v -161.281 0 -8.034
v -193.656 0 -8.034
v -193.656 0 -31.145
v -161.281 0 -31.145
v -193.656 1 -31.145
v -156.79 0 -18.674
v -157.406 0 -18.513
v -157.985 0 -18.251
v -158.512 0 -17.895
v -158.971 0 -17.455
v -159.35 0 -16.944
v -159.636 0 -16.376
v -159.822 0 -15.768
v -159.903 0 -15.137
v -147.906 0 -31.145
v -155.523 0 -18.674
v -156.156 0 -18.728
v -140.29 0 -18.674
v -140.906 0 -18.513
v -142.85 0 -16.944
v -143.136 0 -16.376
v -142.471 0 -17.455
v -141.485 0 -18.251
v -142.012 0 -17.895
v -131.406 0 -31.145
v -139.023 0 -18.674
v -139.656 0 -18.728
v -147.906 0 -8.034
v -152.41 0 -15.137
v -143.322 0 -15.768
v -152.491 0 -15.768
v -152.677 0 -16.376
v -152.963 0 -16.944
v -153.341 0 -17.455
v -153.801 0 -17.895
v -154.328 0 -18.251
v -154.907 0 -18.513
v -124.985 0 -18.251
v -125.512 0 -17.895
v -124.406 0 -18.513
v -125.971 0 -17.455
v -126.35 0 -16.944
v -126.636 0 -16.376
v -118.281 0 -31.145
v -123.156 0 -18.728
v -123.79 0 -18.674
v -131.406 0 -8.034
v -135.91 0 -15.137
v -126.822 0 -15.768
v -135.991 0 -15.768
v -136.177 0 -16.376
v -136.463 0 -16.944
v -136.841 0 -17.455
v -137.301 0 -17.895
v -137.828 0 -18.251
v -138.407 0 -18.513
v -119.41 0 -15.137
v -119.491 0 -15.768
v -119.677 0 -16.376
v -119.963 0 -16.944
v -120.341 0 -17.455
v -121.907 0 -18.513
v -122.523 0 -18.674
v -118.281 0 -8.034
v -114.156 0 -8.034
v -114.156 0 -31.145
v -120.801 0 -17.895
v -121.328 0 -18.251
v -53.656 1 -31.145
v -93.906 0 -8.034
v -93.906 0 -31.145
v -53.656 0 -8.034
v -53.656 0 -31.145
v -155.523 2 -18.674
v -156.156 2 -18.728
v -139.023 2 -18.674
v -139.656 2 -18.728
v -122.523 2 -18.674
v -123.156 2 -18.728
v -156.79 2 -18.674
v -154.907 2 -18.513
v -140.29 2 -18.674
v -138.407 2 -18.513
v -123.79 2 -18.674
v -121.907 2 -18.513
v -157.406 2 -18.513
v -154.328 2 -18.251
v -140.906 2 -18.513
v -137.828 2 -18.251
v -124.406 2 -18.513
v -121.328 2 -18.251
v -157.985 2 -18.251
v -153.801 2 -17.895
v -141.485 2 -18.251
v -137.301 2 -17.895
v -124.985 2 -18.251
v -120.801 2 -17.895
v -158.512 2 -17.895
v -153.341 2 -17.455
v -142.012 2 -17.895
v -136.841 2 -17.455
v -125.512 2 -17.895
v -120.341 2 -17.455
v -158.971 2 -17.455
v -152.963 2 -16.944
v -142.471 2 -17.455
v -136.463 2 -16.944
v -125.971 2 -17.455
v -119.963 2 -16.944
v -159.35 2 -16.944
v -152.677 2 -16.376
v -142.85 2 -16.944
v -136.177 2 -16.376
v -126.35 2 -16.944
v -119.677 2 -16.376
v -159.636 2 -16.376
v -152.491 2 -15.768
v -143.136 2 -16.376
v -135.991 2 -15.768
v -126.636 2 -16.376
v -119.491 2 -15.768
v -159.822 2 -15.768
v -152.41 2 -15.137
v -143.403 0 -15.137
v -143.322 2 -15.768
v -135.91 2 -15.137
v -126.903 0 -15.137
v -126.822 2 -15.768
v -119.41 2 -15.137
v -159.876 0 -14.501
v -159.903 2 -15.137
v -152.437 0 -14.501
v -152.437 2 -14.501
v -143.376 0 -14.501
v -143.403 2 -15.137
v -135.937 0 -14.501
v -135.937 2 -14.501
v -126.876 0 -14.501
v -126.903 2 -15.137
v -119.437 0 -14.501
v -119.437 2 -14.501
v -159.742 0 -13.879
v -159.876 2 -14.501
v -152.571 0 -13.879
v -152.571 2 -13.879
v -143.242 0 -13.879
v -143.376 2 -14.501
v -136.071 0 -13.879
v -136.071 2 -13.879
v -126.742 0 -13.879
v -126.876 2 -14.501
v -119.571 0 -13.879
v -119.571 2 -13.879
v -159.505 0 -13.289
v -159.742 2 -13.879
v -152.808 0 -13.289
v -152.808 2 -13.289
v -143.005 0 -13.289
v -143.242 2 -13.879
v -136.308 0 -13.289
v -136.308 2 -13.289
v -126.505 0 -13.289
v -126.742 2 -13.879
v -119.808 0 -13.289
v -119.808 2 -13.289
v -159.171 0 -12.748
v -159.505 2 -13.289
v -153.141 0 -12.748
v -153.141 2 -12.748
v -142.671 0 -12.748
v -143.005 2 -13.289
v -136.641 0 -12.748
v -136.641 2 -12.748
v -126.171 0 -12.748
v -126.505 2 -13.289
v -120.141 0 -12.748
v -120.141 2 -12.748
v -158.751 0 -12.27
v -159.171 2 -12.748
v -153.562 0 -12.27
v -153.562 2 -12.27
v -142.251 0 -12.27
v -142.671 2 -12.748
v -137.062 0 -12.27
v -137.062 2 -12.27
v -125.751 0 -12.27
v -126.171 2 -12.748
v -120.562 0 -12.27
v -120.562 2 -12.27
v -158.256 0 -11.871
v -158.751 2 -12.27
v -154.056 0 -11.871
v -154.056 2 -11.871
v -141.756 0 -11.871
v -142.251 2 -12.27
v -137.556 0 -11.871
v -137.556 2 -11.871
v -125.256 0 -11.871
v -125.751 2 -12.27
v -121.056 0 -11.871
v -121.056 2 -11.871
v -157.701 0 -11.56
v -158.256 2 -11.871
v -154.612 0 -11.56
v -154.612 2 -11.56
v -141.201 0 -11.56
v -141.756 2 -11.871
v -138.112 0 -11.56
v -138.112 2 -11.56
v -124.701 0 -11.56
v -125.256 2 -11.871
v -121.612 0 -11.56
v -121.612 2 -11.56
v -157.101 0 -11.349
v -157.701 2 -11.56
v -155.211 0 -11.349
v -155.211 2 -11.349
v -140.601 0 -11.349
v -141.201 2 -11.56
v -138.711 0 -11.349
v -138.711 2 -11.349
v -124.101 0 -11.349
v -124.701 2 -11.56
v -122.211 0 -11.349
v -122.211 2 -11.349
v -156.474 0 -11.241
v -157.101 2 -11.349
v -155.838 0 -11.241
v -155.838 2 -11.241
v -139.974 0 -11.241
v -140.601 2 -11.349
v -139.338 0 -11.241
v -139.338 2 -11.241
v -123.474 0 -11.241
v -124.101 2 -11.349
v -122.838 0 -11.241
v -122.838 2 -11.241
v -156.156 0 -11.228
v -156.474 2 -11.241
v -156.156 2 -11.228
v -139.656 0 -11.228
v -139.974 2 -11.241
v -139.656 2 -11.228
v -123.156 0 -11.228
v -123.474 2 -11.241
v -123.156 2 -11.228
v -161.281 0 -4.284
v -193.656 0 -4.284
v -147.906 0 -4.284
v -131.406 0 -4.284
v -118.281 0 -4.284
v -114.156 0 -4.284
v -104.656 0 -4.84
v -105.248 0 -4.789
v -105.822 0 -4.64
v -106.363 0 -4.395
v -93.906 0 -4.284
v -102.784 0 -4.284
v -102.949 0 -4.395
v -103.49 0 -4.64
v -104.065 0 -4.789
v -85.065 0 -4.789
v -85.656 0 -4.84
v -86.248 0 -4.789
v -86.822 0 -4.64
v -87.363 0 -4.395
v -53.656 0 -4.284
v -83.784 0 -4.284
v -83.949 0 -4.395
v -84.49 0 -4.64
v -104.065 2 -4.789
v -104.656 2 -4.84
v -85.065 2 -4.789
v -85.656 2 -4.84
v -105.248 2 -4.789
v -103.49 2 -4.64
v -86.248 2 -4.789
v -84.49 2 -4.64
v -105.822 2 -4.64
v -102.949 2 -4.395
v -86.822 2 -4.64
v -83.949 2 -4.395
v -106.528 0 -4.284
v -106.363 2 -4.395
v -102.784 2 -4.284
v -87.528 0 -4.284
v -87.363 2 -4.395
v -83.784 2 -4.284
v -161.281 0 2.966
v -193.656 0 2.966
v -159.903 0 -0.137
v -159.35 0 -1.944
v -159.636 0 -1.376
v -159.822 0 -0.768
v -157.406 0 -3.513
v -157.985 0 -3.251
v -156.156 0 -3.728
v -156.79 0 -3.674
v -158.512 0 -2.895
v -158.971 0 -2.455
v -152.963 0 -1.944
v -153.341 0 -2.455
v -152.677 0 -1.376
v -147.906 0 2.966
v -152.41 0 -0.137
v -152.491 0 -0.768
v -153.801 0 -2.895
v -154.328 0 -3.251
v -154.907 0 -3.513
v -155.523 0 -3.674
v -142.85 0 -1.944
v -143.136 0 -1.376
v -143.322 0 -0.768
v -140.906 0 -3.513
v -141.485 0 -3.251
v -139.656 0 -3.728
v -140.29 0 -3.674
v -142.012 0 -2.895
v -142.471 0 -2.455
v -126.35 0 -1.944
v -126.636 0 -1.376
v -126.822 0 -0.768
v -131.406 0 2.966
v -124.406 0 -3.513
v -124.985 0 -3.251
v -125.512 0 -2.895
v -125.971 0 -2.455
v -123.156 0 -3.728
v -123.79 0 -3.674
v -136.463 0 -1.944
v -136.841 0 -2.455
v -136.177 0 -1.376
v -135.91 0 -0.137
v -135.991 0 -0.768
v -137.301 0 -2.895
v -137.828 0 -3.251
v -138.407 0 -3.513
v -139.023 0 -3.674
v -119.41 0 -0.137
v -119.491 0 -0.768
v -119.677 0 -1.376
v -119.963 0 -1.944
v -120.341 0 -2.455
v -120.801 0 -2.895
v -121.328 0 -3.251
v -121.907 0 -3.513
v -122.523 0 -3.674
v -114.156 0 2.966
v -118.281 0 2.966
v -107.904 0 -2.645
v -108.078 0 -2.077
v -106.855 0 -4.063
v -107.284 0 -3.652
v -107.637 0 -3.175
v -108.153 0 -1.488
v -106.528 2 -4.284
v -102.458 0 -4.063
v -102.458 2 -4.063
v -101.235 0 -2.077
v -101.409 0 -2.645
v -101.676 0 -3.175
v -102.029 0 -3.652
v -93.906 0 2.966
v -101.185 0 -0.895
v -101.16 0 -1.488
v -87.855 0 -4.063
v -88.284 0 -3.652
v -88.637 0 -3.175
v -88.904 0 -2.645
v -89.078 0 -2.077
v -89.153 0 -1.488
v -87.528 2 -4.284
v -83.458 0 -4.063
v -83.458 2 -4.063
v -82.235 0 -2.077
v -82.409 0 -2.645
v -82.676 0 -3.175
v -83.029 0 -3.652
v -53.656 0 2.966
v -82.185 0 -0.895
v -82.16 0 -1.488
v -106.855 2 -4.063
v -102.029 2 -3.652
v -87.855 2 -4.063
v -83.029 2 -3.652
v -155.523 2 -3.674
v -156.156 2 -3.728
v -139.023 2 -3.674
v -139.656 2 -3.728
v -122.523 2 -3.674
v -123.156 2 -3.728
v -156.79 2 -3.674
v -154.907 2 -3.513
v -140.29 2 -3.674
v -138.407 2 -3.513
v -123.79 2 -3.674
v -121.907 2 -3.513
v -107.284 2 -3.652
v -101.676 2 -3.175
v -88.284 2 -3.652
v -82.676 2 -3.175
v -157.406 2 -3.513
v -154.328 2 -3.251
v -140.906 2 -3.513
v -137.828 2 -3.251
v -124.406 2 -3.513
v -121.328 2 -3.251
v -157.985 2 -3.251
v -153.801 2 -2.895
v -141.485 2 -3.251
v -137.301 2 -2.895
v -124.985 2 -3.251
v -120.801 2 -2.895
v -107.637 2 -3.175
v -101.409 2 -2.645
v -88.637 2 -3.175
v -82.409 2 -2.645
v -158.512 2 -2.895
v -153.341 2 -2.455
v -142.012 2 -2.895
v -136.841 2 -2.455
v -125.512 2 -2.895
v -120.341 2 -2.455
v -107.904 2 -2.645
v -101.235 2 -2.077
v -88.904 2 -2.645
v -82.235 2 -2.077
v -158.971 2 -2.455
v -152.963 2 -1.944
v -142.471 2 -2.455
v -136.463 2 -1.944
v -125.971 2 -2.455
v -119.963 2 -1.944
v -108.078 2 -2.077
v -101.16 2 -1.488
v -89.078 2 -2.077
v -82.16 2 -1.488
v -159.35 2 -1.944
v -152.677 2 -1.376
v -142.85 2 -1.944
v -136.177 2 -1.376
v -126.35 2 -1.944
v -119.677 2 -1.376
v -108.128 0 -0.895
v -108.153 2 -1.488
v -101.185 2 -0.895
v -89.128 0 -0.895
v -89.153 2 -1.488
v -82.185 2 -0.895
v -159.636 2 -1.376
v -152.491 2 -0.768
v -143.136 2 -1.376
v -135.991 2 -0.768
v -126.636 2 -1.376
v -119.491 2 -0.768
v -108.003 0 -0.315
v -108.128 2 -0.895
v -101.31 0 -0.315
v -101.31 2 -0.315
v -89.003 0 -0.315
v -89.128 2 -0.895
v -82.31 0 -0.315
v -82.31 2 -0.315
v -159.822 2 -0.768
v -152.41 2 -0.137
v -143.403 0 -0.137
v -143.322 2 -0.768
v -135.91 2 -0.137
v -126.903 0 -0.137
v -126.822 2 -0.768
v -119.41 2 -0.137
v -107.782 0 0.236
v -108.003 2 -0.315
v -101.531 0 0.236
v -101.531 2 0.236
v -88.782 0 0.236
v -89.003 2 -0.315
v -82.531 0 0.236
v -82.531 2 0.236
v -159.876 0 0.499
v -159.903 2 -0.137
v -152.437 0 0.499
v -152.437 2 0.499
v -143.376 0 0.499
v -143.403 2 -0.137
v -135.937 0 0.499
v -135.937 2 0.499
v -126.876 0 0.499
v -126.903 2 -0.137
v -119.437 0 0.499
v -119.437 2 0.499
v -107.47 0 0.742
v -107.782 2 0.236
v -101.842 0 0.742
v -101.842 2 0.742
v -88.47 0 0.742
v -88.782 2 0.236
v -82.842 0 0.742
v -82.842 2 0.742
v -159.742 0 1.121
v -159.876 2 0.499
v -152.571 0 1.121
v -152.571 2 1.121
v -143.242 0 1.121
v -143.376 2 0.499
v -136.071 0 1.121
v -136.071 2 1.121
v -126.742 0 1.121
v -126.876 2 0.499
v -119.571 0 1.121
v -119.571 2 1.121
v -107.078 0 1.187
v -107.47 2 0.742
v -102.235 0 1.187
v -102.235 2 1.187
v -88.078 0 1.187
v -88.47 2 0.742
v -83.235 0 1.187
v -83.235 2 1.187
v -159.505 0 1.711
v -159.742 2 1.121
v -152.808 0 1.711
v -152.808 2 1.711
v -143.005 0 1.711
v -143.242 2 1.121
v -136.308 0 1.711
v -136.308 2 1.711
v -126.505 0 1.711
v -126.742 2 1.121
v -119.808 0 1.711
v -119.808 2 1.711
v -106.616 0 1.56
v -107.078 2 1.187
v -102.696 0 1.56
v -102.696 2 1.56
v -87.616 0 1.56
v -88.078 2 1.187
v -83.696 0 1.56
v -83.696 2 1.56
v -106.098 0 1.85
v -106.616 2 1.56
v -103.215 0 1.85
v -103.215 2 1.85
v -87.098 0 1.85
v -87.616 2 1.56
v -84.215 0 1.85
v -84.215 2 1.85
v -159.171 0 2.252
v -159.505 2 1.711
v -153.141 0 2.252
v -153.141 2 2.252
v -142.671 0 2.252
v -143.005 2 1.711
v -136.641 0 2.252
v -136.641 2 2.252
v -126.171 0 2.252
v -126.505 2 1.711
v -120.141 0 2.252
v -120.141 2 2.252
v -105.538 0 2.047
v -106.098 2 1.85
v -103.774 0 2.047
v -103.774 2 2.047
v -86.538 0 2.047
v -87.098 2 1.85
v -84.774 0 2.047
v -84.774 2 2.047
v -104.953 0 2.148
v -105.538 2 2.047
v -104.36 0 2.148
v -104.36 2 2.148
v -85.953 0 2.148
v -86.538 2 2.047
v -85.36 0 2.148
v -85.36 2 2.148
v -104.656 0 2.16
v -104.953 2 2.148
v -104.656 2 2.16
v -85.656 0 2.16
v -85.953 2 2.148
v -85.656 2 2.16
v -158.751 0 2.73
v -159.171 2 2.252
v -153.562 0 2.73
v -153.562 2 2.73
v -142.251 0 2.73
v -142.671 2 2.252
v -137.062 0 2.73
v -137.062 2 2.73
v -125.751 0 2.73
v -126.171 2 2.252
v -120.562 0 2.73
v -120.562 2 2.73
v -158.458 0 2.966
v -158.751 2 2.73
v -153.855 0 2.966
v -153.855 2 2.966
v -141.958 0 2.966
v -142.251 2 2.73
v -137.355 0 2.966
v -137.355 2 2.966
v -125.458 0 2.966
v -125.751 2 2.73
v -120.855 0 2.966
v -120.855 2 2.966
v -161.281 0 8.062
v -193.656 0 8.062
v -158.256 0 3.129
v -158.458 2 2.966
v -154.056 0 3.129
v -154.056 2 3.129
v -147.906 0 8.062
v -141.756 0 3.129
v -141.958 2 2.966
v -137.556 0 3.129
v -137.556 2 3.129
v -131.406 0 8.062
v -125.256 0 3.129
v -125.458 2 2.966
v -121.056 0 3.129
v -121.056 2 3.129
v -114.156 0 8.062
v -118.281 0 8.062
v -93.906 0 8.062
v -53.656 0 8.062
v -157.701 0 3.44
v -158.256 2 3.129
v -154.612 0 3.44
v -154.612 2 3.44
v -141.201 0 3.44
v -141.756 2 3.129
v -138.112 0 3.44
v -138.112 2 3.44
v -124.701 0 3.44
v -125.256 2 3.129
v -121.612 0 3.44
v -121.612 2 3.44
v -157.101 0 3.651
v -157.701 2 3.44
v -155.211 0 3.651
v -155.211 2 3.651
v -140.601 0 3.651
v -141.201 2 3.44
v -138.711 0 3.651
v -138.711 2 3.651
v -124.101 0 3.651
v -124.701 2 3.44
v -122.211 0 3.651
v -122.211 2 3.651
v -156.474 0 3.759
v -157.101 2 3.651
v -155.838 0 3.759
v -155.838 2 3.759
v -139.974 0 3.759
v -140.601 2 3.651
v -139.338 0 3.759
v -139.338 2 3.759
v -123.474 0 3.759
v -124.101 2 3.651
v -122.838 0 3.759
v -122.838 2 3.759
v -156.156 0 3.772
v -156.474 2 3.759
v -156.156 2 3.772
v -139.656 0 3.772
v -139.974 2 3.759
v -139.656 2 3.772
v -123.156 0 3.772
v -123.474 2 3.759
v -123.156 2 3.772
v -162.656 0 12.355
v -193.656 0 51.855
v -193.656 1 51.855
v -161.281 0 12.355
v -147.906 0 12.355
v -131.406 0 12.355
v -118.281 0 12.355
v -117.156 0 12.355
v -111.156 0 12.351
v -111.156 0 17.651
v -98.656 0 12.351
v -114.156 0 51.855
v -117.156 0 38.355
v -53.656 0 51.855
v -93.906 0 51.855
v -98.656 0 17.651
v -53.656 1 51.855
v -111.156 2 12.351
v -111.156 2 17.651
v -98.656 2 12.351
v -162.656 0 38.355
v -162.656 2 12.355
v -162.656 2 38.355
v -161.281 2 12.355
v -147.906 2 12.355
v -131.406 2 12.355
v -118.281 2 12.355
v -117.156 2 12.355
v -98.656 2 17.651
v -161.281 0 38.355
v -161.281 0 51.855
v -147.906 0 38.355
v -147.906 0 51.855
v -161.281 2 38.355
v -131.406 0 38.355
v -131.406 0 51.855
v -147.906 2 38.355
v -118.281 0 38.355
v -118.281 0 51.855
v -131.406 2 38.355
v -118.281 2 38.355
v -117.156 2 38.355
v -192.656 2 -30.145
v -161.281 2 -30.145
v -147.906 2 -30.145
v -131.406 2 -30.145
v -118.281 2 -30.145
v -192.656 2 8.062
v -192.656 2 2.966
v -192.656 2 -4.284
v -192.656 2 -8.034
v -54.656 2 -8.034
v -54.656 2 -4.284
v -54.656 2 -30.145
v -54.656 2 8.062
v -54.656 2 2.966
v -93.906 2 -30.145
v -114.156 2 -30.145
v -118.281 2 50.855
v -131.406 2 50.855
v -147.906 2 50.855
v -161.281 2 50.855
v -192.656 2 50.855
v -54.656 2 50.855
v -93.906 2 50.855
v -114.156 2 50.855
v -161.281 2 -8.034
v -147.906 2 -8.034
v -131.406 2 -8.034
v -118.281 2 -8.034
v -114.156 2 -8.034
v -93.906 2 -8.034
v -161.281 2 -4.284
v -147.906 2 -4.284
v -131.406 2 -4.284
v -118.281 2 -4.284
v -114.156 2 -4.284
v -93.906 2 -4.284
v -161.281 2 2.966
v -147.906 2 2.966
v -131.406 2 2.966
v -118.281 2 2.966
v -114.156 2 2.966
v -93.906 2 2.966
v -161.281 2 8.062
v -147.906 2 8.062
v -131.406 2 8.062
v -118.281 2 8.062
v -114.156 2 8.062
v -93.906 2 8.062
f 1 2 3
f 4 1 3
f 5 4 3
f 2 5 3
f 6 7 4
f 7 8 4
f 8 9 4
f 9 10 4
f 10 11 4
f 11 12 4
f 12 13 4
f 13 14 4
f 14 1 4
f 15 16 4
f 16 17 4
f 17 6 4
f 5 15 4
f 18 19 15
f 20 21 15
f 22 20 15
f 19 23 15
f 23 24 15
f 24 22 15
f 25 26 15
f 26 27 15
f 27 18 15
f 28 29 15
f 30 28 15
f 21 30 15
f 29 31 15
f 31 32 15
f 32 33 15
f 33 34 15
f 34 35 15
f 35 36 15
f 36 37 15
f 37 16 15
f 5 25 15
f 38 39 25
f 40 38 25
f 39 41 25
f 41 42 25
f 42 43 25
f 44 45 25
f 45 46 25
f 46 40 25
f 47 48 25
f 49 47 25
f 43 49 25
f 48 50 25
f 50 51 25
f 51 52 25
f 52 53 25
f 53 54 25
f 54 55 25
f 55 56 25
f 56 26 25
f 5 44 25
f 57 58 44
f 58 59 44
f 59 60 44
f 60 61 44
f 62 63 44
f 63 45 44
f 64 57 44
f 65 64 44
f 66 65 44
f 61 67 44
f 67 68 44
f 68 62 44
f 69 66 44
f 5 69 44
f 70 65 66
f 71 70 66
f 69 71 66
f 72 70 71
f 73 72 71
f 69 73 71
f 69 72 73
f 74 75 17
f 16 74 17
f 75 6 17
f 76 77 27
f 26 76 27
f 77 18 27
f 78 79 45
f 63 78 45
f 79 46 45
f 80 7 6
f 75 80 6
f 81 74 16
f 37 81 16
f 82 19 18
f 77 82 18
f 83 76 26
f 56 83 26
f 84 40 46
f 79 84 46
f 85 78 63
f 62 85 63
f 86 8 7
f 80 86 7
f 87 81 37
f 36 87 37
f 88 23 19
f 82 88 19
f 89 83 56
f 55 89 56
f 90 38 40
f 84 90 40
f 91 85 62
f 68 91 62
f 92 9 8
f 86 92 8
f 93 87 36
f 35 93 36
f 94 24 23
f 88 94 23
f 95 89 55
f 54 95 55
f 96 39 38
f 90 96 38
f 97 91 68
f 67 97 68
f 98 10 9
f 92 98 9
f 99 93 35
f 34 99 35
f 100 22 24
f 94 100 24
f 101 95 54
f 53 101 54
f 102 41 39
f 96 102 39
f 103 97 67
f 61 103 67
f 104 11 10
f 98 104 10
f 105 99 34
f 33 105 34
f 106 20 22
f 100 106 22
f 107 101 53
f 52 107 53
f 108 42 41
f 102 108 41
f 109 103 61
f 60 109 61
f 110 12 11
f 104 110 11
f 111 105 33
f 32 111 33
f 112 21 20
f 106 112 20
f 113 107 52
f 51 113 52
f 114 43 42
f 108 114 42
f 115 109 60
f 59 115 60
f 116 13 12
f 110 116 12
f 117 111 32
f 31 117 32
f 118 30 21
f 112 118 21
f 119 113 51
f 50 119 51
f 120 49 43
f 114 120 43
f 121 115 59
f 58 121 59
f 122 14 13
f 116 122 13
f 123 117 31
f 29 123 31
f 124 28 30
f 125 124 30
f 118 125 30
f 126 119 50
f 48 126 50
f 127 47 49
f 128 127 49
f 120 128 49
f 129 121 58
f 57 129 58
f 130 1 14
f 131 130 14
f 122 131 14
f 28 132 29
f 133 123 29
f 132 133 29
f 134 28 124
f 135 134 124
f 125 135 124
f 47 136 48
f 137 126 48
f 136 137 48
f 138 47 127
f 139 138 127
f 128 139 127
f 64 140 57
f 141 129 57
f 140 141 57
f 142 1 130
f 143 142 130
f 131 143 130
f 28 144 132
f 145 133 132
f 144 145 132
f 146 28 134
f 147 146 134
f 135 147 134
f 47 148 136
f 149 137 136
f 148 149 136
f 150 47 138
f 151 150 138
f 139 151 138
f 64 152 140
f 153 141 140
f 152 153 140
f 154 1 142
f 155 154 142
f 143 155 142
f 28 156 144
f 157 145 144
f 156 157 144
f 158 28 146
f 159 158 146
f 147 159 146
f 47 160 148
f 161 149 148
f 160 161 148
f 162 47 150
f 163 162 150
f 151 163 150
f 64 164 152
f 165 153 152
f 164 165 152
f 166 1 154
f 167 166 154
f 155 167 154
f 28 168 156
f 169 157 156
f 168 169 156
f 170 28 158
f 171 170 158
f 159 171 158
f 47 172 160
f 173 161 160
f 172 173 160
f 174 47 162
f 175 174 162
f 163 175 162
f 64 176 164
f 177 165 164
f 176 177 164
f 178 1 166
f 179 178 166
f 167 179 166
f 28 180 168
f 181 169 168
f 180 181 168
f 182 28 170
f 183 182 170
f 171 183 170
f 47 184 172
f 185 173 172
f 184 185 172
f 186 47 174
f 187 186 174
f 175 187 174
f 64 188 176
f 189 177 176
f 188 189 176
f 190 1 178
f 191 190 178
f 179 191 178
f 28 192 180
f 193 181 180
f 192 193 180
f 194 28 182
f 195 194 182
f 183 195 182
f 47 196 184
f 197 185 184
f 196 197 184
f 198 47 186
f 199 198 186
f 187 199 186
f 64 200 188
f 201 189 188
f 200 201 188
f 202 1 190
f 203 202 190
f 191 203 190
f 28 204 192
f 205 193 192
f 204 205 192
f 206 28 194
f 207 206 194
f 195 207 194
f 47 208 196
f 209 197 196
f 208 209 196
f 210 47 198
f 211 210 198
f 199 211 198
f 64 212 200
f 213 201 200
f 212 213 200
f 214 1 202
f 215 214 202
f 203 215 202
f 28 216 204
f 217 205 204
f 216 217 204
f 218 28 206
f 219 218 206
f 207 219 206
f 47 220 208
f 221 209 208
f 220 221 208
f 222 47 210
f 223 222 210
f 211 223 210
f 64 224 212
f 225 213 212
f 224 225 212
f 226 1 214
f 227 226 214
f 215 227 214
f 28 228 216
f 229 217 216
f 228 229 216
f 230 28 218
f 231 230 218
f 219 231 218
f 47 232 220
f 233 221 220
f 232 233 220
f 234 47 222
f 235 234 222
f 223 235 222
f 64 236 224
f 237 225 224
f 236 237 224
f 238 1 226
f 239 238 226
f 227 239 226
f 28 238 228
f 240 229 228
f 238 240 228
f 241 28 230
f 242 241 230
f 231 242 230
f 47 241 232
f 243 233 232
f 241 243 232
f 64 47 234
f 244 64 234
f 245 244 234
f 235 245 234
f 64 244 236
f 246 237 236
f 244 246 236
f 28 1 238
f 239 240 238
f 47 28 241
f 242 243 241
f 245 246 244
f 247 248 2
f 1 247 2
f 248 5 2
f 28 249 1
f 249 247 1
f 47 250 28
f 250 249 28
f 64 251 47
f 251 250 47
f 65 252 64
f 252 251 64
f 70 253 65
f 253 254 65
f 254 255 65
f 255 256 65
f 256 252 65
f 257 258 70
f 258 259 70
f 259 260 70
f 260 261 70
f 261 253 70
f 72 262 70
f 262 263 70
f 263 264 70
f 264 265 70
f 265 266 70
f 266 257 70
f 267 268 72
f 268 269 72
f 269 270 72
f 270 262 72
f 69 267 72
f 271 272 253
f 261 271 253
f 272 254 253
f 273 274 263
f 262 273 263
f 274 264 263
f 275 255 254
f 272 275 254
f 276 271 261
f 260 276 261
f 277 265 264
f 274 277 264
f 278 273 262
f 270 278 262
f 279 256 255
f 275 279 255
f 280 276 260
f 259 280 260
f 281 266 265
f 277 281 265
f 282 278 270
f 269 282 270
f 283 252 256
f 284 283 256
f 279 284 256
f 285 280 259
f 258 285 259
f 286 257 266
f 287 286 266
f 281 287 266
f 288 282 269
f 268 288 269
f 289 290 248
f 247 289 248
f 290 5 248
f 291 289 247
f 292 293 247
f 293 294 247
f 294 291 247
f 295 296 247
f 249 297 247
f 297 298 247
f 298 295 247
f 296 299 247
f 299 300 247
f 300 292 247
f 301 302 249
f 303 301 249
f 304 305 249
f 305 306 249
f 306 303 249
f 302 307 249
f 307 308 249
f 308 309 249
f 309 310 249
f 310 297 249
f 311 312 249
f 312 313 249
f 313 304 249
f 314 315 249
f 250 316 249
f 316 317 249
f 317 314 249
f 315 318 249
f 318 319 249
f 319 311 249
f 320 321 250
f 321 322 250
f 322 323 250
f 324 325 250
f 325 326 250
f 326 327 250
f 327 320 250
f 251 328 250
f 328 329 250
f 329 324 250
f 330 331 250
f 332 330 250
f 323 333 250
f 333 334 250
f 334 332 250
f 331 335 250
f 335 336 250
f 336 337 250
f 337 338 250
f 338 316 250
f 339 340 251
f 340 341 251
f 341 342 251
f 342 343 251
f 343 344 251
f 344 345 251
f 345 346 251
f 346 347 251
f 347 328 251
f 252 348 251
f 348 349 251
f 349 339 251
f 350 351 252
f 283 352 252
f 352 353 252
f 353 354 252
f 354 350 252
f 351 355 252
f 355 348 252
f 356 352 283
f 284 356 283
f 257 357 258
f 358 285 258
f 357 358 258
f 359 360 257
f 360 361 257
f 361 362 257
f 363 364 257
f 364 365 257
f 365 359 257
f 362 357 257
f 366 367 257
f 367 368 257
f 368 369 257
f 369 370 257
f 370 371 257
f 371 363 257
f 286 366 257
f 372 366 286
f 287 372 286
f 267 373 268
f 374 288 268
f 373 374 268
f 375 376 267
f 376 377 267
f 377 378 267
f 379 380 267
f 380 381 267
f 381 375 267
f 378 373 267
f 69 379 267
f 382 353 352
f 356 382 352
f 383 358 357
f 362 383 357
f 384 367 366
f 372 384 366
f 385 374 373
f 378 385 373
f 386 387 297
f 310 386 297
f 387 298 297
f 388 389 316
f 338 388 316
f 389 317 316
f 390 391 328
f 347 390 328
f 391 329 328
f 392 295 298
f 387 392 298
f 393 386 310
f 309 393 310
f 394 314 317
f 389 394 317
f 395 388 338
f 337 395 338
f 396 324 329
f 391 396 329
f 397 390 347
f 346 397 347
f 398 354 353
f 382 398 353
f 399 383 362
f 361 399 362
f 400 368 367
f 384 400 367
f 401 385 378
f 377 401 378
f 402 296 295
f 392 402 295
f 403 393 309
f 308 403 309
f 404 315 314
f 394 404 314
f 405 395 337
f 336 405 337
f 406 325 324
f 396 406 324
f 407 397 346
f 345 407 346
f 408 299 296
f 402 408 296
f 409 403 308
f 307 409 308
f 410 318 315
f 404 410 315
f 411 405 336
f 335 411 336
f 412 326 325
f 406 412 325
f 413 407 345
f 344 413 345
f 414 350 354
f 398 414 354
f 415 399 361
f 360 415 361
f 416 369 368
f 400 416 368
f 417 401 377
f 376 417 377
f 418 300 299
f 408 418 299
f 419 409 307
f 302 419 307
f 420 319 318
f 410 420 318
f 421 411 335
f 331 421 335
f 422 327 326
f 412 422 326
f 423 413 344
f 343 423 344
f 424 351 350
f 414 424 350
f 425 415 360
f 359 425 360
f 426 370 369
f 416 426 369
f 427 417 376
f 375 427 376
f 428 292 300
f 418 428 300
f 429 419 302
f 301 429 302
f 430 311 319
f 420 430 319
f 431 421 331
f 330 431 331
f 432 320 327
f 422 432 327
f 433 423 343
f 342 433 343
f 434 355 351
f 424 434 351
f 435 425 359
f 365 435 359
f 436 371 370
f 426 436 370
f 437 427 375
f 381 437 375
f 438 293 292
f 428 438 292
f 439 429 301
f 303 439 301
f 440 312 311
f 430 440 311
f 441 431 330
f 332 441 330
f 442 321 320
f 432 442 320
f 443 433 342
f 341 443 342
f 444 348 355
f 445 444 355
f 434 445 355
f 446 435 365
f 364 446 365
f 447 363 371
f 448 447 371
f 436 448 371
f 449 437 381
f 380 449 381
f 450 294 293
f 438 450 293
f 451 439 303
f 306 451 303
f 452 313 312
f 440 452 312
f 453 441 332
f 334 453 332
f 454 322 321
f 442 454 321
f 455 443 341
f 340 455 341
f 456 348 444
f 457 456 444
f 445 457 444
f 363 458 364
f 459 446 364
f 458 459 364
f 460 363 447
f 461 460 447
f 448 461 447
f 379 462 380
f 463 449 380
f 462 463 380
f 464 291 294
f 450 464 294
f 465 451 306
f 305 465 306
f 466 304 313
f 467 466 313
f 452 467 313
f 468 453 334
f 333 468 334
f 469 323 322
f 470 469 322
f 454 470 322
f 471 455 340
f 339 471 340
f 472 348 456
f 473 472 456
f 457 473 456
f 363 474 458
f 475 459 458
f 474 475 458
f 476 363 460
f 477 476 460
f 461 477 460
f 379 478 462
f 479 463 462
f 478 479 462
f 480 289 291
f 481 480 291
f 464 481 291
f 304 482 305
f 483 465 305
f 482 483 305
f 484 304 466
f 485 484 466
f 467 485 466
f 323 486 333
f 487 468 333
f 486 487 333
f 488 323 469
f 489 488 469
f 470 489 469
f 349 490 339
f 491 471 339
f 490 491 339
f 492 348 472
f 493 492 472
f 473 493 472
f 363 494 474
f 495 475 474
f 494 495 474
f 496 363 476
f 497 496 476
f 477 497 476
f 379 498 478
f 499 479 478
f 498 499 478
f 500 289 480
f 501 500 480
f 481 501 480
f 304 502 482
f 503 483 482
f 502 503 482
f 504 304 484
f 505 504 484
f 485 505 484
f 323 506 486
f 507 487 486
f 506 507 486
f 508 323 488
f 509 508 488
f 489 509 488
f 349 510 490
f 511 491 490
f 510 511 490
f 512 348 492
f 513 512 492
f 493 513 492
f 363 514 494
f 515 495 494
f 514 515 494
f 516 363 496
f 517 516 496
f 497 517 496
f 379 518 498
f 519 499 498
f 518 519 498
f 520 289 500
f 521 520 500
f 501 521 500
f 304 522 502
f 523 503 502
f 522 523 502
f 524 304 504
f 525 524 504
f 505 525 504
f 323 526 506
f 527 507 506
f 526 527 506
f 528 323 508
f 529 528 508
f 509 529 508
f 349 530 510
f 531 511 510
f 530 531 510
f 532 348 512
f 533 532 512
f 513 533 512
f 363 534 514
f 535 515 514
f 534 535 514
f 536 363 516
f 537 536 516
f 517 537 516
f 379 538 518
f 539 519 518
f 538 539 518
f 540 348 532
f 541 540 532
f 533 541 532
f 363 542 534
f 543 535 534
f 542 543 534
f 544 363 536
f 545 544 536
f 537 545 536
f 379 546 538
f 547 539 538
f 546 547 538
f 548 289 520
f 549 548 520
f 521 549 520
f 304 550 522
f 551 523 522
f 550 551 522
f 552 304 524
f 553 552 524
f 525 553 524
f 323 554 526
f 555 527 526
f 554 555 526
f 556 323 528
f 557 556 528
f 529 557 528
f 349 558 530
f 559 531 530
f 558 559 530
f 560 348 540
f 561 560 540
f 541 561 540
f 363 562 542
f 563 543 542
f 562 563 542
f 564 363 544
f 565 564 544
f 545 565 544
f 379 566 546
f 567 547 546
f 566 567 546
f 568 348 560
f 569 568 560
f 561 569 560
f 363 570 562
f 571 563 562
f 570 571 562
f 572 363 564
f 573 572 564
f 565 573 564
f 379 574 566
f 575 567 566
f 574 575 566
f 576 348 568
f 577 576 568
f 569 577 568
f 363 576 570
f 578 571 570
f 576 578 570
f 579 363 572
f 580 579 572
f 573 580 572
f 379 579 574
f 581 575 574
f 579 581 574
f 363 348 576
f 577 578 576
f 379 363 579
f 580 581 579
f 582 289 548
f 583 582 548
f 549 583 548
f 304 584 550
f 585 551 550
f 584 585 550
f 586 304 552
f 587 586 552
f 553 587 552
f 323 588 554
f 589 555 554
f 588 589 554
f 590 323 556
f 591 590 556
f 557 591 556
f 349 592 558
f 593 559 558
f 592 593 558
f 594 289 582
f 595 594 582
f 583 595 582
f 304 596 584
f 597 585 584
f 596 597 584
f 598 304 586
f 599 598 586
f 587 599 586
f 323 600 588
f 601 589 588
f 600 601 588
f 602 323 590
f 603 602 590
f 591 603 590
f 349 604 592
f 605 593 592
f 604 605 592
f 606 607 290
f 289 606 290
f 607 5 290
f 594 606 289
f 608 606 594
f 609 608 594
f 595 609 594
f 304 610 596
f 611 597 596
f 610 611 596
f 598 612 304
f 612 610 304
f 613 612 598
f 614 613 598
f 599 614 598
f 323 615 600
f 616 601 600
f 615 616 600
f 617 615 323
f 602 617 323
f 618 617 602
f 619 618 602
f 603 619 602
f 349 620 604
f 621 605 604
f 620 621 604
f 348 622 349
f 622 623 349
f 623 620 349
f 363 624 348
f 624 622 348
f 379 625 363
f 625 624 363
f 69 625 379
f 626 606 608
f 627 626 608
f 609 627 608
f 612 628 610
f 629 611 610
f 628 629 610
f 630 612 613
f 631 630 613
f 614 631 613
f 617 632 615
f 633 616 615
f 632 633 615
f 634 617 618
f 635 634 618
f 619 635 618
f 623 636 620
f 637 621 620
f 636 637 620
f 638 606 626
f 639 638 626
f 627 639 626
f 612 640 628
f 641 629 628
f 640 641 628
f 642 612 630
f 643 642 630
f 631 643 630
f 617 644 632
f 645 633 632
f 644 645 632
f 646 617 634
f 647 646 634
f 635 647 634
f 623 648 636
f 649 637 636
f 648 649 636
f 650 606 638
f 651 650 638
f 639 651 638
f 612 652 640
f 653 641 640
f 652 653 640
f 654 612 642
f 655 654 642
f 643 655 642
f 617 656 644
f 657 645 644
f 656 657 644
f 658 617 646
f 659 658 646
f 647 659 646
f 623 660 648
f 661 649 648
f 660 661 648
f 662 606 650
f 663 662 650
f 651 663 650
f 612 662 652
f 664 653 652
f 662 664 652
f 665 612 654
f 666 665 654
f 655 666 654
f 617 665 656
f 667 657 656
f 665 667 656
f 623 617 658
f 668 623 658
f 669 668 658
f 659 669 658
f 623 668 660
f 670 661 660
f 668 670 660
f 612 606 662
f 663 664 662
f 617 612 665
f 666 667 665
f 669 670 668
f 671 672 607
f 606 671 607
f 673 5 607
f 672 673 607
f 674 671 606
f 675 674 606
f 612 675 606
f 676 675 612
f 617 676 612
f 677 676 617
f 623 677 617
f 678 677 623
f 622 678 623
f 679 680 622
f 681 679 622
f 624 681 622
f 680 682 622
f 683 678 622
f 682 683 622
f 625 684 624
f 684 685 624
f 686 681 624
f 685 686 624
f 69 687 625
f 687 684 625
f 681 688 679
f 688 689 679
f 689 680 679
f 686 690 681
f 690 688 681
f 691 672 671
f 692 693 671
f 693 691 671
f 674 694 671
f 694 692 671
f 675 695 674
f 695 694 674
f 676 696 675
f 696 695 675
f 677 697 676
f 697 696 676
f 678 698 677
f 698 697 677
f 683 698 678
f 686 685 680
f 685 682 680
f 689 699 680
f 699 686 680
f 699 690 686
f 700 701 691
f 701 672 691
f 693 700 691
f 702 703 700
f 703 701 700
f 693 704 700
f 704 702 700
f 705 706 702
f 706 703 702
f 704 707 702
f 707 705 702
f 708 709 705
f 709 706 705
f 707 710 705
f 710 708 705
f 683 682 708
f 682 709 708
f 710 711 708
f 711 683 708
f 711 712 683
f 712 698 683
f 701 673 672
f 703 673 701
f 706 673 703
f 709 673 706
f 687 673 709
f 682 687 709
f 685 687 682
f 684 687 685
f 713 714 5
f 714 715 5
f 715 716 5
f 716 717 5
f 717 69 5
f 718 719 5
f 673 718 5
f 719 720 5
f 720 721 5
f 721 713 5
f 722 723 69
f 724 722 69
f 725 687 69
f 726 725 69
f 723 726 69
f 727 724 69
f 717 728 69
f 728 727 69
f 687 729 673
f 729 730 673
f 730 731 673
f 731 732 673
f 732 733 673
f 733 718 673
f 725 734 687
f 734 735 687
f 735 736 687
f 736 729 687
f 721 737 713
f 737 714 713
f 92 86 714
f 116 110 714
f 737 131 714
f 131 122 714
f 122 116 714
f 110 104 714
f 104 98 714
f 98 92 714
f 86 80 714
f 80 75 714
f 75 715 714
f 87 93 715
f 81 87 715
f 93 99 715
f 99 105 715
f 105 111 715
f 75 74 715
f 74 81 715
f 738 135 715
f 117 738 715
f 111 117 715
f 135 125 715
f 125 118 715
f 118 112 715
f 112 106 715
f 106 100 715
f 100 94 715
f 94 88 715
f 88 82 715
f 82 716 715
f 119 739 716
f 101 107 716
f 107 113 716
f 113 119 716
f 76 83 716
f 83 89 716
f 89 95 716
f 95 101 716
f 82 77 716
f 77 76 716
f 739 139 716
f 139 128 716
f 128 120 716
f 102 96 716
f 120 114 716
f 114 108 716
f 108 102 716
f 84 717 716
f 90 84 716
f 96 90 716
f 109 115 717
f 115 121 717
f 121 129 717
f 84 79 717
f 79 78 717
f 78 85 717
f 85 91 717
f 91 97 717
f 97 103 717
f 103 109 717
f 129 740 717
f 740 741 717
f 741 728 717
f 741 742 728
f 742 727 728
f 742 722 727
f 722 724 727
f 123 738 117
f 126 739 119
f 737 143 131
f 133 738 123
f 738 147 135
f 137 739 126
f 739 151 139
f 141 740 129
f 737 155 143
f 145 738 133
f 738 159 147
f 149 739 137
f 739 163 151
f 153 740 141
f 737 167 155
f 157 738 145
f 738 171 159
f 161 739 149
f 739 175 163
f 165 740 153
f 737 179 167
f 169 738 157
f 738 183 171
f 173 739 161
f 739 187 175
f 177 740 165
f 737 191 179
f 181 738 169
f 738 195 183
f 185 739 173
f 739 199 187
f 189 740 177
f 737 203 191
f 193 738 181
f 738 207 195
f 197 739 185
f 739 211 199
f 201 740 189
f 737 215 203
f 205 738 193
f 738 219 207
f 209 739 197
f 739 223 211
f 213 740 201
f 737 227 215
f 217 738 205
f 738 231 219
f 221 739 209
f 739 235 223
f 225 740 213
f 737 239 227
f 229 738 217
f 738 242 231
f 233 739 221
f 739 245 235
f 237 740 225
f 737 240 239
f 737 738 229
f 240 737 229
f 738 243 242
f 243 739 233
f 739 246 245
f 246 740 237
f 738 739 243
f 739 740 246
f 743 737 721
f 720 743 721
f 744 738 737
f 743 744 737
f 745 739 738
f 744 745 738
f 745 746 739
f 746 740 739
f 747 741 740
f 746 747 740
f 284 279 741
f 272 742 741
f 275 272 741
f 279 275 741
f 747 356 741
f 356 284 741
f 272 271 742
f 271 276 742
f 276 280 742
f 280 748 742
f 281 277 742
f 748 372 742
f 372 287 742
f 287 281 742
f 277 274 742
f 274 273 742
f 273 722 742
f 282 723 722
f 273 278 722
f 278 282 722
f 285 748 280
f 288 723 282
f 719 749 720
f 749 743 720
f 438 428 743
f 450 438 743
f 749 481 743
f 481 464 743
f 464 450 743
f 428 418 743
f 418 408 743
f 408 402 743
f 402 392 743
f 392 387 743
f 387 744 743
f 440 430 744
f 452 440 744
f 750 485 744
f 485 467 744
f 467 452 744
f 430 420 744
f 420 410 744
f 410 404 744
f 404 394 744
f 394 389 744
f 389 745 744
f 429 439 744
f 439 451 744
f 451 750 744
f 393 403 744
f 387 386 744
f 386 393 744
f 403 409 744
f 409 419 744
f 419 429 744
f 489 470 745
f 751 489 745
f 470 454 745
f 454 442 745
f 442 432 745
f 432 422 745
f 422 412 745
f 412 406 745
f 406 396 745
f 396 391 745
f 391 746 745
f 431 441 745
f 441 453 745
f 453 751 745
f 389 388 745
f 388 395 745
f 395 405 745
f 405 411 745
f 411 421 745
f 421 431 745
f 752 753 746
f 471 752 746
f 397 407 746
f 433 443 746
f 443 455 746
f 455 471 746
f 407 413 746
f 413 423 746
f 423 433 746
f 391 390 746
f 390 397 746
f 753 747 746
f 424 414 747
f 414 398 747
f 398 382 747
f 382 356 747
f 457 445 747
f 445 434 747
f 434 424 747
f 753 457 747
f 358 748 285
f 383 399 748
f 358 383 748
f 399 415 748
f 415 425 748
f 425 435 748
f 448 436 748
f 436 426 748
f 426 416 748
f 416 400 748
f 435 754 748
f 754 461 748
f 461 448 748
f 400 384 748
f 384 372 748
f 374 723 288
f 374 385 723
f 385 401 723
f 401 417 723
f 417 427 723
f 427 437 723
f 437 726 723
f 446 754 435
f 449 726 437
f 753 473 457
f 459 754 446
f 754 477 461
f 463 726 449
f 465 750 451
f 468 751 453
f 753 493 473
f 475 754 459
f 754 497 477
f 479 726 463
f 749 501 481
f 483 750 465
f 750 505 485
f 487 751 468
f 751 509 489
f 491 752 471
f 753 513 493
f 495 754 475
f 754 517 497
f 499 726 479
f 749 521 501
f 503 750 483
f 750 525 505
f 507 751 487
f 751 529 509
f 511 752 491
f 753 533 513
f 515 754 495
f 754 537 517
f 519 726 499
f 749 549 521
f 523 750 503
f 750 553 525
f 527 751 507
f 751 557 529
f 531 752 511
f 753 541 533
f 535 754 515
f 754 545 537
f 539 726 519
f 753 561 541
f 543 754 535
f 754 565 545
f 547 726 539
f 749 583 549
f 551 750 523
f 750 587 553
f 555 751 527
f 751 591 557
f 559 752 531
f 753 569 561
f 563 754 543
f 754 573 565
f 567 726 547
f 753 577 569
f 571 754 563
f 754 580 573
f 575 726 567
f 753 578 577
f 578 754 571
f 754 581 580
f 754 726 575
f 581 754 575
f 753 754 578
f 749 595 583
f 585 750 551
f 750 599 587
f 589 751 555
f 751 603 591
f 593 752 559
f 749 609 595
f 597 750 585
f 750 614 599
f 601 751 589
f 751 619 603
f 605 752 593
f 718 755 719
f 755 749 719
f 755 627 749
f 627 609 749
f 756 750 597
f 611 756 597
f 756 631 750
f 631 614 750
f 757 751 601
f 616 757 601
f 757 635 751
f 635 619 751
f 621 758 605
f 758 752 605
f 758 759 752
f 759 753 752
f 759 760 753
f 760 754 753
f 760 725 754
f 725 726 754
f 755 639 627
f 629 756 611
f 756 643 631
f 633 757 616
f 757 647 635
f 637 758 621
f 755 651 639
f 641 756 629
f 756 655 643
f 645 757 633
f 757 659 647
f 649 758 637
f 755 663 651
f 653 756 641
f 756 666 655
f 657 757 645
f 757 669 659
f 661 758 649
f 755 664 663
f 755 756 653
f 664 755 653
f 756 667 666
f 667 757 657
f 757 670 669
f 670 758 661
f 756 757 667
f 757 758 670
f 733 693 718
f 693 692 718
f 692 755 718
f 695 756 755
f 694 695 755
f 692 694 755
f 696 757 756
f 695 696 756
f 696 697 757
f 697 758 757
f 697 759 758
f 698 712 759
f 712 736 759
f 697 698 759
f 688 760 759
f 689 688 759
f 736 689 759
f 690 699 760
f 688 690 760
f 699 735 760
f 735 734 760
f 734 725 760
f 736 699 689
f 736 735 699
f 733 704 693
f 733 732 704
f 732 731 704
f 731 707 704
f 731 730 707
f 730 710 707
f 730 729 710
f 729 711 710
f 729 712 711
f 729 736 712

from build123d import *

# Parameters (mm, degrees)
SKETCH2_W           = 140
SKETCH2_H           = 83
SKETCH2_R           = 3.75
SKETCH2_R_2         = 3.5
SKETCH2_W_2         = 45.5
SKETCH2_H_2         = 26
SKETCH2_W_3         = 12.5
SKETCH2_H_3         = 5.3
BOSS_EXTRUDE1_DEPTH = 2
CHAMFER1_SIZE       = 1


with BuildPart() as part:
    # Sketch2 → Boss-Extrude1 (new body)
    with BuildSketch(Plane(origin=(0, 0, 0), x_dir=(1, 0, 0), z_dir=(0, 1, 0))):
        with Locations((-123.656387665, -10.354625551)):
            Rectangle(SKETCH2_W, SKETCH2_H)
        with Locations(Location((-156.156387665, 14.977524107, 0), (0, 0, 270))):
            Circle(SKETCH2_R, mode=Mode.SUBTRACT)
        with Locations(Location((-139.656387665, 14.977524107, 0), (0, 0, 270))):
            Circle(SKETCH2_R, mode=Mode.SUBTRACT)
        with Locations(Location((-123.156387665, 14.977524107, 0), (0, 0, 270))):
            Circle(SKETCH2_R, mode=Mode.SUBTRACT)
        with Locations(Location((-123.156387665, -0.022475893, 0), (0, 0, 270))):
            Circle(SKETCH2_R, mode=Mode.SUBTRACT)
        with Locations(Location((-139.656387665, -0.022475893, 0), (0, 0, 270))):
            Circle(SKETCH2_R, mode=Mode.SUBTRACT)
        with Locations(Location((-156.156387665, -0.022475893, 0), (0, 0, 270))):
            Circle(SKETCH2_R, mode=Mode.SUBTRACT)
        with Locations(Location((-85.656387665, 1.339603921, 0), (0, 0, 270))):
            Circle(SKETCH2_R_2, mode=Mode.SUBTRACT)
        with Locations(Location((-104.656387665, 1.339603921, 0), (0, 0, 270))):
            Circle(SKETCH2_R_2, mode=Mode.SUBTRACT)
        with Locations((-139.906387665, -25.354625551)):
            Rectangle(SKETCH2_W_2, SKETCH2_H_2, mode=Mode.SUBTRACT)
        with Locations((-104.906387665, -15.00079349)):
            Rectangle(SKETCH2_W_3, SKETCH2_H_3, mode=Mode.SUBTRACT)
    extrude(amount=BOSS_EXTRUDE1_DEPTH)

    # Chamfer1
    chamfer1_edges = [part.edges().sort_by_distance(p)[0] for p in [
        (-193.656387665, 2, 10.354625551),
        (-123.656387665, 2, 51.854625551),
        (-53.656387665, 2, 10.354625551),
        (-123.656387665, 2, -31.145374449),
    ]]
    chamfer(chamfer1_edges, length=CHAMFER1_SIZE)


solid = part.part
